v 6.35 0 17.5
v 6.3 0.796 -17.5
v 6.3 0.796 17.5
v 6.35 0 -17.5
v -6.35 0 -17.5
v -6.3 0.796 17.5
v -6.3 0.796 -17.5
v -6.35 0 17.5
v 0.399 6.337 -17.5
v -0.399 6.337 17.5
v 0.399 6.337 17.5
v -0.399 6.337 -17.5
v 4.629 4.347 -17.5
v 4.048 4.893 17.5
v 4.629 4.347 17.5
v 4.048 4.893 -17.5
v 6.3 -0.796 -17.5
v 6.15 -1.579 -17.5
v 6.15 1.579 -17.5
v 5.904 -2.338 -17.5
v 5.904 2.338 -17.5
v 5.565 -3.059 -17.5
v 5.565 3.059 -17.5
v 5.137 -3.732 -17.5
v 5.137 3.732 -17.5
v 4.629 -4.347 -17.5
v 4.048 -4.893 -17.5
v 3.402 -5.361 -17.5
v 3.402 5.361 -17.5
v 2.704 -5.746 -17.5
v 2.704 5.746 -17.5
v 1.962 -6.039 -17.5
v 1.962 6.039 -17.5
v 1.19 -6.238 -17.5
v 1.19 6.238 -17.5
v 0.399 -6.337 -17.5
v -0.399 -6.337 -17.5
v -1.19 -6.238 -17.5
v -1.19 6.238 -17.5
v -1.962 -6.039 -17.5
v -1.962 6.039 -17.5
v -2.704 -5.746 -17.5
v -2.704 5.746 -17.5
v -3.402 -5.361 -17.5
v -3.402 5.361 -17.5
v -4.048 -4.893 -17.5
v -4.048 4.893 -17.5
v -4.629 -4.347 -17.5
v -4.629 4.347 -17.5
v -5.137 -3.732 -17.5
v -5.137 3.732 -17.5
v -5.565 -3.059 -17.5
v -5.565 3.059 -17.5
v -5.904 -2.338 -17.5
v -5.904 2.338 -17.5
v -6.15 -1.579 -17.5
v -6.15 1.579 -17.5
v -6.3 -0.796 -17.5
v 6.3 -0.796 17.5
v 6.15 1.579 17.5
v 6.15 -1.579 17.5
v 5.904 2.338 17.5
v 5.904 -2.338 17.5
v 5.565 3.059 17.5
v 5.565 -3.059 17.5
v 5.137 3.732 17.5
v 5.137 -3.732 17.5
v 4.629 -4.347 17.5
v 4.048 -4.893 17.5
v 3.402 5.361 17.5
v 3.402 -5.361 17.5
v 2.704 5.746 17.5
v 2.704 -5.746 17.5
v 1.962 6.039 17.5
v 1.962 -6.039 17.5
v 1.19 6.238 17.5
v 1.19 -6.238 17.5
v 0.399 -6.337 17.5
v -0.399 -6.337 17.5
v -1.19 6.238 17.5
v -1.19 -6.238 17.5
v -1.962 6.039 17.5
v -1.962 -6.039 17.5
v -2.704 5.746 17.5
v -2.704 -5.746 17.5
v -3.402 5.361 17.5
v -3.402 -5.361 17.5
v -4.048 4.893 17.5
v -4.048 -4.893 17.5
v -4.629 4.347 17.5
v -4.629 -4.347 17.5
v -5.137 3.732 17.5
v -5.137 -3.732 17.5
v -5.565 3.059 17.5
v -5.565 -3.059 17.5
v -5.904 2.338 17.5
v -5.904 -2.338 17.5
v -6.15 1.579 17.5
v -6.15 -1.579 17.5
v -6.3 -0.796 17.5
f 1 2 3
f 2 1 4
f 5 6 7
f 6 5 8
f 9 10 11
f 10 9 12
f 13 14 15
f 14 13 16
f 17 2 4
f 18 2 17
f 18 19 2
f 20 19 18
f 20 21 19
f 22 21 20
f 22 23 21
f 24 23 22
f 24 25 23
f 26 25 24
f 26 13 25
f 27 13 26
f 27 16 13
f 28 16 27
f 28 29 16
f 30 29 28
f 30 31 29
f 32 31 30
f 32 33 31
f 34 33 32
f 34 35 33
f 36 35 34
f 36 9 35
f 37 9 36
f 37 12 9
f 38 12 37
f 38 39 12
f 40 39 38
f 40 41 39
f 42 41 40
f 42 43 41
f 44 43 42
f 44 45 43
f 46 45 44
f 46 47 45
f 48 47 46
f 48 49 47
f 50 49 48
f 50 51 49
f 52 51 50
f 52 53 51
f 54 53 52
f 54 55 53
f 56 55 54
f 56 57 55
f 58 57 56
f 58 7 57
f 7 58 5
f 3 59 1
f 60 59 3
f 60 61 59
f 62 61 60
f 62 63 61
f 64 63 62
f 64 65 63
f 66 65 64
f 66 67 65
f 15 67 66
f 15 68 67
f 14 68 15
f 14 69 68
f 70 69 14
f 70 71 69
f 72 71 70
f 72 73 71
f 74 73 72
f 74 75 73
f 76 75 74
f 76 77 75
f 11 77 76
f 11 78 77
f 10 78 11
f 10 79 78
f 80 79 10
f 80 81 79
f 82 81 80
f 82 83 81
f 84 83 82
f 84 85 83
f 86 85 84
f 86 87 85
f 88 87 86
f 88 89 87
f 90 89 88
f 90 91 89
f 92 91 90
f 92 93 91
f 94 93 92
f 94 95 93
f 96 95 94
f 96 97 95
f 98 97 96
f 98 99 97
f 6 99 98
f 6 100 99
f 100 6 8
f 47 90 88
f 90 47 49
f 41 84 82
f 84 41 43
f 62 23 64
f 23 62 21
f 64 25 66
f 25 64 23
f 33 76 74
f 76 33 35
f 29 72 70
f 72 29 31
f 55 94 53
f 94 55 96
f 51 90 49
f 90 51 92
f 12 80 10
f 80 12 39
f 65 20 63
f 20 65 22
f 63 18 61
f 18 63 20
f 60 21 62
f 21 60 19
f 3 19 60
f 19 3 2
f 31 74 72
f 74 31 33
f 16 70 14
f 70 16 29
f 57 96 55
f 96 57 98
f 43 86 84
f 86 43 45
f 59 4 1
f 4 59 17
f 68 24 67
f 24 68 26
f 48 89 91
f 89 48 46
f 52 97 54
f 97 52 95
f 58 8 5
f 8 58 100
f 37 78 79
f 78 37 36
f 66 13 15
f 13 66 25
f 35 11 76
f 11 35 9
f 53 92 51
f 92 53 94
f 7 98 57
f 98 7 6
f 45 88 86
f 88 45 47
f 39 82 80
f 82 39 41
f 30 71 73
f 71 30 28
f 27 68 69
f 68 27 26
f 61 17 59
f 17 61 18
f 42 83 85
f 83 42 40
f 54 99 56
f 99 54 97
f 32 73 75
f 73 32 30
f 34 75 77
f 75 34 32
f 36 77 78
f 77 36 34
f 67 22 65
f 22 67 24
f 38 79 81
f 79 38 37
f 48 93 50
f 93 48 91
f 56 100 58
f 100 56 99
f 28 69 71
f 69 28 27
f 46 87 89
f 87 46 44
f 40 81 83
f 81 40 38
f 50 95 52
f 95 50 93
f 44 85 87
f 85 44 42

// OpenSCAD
$fn = 50;


difference() {
	union() {
		translate(v = [0, 0, -17.5000000000]) {
			cylinder(h = 35, r = 6.3500000000);
		}
	}
	union() {
		translate(v = [0, 0, -100.0000000000]) {
			cylinder(h = 200, r = 0);
		}
	}
}
